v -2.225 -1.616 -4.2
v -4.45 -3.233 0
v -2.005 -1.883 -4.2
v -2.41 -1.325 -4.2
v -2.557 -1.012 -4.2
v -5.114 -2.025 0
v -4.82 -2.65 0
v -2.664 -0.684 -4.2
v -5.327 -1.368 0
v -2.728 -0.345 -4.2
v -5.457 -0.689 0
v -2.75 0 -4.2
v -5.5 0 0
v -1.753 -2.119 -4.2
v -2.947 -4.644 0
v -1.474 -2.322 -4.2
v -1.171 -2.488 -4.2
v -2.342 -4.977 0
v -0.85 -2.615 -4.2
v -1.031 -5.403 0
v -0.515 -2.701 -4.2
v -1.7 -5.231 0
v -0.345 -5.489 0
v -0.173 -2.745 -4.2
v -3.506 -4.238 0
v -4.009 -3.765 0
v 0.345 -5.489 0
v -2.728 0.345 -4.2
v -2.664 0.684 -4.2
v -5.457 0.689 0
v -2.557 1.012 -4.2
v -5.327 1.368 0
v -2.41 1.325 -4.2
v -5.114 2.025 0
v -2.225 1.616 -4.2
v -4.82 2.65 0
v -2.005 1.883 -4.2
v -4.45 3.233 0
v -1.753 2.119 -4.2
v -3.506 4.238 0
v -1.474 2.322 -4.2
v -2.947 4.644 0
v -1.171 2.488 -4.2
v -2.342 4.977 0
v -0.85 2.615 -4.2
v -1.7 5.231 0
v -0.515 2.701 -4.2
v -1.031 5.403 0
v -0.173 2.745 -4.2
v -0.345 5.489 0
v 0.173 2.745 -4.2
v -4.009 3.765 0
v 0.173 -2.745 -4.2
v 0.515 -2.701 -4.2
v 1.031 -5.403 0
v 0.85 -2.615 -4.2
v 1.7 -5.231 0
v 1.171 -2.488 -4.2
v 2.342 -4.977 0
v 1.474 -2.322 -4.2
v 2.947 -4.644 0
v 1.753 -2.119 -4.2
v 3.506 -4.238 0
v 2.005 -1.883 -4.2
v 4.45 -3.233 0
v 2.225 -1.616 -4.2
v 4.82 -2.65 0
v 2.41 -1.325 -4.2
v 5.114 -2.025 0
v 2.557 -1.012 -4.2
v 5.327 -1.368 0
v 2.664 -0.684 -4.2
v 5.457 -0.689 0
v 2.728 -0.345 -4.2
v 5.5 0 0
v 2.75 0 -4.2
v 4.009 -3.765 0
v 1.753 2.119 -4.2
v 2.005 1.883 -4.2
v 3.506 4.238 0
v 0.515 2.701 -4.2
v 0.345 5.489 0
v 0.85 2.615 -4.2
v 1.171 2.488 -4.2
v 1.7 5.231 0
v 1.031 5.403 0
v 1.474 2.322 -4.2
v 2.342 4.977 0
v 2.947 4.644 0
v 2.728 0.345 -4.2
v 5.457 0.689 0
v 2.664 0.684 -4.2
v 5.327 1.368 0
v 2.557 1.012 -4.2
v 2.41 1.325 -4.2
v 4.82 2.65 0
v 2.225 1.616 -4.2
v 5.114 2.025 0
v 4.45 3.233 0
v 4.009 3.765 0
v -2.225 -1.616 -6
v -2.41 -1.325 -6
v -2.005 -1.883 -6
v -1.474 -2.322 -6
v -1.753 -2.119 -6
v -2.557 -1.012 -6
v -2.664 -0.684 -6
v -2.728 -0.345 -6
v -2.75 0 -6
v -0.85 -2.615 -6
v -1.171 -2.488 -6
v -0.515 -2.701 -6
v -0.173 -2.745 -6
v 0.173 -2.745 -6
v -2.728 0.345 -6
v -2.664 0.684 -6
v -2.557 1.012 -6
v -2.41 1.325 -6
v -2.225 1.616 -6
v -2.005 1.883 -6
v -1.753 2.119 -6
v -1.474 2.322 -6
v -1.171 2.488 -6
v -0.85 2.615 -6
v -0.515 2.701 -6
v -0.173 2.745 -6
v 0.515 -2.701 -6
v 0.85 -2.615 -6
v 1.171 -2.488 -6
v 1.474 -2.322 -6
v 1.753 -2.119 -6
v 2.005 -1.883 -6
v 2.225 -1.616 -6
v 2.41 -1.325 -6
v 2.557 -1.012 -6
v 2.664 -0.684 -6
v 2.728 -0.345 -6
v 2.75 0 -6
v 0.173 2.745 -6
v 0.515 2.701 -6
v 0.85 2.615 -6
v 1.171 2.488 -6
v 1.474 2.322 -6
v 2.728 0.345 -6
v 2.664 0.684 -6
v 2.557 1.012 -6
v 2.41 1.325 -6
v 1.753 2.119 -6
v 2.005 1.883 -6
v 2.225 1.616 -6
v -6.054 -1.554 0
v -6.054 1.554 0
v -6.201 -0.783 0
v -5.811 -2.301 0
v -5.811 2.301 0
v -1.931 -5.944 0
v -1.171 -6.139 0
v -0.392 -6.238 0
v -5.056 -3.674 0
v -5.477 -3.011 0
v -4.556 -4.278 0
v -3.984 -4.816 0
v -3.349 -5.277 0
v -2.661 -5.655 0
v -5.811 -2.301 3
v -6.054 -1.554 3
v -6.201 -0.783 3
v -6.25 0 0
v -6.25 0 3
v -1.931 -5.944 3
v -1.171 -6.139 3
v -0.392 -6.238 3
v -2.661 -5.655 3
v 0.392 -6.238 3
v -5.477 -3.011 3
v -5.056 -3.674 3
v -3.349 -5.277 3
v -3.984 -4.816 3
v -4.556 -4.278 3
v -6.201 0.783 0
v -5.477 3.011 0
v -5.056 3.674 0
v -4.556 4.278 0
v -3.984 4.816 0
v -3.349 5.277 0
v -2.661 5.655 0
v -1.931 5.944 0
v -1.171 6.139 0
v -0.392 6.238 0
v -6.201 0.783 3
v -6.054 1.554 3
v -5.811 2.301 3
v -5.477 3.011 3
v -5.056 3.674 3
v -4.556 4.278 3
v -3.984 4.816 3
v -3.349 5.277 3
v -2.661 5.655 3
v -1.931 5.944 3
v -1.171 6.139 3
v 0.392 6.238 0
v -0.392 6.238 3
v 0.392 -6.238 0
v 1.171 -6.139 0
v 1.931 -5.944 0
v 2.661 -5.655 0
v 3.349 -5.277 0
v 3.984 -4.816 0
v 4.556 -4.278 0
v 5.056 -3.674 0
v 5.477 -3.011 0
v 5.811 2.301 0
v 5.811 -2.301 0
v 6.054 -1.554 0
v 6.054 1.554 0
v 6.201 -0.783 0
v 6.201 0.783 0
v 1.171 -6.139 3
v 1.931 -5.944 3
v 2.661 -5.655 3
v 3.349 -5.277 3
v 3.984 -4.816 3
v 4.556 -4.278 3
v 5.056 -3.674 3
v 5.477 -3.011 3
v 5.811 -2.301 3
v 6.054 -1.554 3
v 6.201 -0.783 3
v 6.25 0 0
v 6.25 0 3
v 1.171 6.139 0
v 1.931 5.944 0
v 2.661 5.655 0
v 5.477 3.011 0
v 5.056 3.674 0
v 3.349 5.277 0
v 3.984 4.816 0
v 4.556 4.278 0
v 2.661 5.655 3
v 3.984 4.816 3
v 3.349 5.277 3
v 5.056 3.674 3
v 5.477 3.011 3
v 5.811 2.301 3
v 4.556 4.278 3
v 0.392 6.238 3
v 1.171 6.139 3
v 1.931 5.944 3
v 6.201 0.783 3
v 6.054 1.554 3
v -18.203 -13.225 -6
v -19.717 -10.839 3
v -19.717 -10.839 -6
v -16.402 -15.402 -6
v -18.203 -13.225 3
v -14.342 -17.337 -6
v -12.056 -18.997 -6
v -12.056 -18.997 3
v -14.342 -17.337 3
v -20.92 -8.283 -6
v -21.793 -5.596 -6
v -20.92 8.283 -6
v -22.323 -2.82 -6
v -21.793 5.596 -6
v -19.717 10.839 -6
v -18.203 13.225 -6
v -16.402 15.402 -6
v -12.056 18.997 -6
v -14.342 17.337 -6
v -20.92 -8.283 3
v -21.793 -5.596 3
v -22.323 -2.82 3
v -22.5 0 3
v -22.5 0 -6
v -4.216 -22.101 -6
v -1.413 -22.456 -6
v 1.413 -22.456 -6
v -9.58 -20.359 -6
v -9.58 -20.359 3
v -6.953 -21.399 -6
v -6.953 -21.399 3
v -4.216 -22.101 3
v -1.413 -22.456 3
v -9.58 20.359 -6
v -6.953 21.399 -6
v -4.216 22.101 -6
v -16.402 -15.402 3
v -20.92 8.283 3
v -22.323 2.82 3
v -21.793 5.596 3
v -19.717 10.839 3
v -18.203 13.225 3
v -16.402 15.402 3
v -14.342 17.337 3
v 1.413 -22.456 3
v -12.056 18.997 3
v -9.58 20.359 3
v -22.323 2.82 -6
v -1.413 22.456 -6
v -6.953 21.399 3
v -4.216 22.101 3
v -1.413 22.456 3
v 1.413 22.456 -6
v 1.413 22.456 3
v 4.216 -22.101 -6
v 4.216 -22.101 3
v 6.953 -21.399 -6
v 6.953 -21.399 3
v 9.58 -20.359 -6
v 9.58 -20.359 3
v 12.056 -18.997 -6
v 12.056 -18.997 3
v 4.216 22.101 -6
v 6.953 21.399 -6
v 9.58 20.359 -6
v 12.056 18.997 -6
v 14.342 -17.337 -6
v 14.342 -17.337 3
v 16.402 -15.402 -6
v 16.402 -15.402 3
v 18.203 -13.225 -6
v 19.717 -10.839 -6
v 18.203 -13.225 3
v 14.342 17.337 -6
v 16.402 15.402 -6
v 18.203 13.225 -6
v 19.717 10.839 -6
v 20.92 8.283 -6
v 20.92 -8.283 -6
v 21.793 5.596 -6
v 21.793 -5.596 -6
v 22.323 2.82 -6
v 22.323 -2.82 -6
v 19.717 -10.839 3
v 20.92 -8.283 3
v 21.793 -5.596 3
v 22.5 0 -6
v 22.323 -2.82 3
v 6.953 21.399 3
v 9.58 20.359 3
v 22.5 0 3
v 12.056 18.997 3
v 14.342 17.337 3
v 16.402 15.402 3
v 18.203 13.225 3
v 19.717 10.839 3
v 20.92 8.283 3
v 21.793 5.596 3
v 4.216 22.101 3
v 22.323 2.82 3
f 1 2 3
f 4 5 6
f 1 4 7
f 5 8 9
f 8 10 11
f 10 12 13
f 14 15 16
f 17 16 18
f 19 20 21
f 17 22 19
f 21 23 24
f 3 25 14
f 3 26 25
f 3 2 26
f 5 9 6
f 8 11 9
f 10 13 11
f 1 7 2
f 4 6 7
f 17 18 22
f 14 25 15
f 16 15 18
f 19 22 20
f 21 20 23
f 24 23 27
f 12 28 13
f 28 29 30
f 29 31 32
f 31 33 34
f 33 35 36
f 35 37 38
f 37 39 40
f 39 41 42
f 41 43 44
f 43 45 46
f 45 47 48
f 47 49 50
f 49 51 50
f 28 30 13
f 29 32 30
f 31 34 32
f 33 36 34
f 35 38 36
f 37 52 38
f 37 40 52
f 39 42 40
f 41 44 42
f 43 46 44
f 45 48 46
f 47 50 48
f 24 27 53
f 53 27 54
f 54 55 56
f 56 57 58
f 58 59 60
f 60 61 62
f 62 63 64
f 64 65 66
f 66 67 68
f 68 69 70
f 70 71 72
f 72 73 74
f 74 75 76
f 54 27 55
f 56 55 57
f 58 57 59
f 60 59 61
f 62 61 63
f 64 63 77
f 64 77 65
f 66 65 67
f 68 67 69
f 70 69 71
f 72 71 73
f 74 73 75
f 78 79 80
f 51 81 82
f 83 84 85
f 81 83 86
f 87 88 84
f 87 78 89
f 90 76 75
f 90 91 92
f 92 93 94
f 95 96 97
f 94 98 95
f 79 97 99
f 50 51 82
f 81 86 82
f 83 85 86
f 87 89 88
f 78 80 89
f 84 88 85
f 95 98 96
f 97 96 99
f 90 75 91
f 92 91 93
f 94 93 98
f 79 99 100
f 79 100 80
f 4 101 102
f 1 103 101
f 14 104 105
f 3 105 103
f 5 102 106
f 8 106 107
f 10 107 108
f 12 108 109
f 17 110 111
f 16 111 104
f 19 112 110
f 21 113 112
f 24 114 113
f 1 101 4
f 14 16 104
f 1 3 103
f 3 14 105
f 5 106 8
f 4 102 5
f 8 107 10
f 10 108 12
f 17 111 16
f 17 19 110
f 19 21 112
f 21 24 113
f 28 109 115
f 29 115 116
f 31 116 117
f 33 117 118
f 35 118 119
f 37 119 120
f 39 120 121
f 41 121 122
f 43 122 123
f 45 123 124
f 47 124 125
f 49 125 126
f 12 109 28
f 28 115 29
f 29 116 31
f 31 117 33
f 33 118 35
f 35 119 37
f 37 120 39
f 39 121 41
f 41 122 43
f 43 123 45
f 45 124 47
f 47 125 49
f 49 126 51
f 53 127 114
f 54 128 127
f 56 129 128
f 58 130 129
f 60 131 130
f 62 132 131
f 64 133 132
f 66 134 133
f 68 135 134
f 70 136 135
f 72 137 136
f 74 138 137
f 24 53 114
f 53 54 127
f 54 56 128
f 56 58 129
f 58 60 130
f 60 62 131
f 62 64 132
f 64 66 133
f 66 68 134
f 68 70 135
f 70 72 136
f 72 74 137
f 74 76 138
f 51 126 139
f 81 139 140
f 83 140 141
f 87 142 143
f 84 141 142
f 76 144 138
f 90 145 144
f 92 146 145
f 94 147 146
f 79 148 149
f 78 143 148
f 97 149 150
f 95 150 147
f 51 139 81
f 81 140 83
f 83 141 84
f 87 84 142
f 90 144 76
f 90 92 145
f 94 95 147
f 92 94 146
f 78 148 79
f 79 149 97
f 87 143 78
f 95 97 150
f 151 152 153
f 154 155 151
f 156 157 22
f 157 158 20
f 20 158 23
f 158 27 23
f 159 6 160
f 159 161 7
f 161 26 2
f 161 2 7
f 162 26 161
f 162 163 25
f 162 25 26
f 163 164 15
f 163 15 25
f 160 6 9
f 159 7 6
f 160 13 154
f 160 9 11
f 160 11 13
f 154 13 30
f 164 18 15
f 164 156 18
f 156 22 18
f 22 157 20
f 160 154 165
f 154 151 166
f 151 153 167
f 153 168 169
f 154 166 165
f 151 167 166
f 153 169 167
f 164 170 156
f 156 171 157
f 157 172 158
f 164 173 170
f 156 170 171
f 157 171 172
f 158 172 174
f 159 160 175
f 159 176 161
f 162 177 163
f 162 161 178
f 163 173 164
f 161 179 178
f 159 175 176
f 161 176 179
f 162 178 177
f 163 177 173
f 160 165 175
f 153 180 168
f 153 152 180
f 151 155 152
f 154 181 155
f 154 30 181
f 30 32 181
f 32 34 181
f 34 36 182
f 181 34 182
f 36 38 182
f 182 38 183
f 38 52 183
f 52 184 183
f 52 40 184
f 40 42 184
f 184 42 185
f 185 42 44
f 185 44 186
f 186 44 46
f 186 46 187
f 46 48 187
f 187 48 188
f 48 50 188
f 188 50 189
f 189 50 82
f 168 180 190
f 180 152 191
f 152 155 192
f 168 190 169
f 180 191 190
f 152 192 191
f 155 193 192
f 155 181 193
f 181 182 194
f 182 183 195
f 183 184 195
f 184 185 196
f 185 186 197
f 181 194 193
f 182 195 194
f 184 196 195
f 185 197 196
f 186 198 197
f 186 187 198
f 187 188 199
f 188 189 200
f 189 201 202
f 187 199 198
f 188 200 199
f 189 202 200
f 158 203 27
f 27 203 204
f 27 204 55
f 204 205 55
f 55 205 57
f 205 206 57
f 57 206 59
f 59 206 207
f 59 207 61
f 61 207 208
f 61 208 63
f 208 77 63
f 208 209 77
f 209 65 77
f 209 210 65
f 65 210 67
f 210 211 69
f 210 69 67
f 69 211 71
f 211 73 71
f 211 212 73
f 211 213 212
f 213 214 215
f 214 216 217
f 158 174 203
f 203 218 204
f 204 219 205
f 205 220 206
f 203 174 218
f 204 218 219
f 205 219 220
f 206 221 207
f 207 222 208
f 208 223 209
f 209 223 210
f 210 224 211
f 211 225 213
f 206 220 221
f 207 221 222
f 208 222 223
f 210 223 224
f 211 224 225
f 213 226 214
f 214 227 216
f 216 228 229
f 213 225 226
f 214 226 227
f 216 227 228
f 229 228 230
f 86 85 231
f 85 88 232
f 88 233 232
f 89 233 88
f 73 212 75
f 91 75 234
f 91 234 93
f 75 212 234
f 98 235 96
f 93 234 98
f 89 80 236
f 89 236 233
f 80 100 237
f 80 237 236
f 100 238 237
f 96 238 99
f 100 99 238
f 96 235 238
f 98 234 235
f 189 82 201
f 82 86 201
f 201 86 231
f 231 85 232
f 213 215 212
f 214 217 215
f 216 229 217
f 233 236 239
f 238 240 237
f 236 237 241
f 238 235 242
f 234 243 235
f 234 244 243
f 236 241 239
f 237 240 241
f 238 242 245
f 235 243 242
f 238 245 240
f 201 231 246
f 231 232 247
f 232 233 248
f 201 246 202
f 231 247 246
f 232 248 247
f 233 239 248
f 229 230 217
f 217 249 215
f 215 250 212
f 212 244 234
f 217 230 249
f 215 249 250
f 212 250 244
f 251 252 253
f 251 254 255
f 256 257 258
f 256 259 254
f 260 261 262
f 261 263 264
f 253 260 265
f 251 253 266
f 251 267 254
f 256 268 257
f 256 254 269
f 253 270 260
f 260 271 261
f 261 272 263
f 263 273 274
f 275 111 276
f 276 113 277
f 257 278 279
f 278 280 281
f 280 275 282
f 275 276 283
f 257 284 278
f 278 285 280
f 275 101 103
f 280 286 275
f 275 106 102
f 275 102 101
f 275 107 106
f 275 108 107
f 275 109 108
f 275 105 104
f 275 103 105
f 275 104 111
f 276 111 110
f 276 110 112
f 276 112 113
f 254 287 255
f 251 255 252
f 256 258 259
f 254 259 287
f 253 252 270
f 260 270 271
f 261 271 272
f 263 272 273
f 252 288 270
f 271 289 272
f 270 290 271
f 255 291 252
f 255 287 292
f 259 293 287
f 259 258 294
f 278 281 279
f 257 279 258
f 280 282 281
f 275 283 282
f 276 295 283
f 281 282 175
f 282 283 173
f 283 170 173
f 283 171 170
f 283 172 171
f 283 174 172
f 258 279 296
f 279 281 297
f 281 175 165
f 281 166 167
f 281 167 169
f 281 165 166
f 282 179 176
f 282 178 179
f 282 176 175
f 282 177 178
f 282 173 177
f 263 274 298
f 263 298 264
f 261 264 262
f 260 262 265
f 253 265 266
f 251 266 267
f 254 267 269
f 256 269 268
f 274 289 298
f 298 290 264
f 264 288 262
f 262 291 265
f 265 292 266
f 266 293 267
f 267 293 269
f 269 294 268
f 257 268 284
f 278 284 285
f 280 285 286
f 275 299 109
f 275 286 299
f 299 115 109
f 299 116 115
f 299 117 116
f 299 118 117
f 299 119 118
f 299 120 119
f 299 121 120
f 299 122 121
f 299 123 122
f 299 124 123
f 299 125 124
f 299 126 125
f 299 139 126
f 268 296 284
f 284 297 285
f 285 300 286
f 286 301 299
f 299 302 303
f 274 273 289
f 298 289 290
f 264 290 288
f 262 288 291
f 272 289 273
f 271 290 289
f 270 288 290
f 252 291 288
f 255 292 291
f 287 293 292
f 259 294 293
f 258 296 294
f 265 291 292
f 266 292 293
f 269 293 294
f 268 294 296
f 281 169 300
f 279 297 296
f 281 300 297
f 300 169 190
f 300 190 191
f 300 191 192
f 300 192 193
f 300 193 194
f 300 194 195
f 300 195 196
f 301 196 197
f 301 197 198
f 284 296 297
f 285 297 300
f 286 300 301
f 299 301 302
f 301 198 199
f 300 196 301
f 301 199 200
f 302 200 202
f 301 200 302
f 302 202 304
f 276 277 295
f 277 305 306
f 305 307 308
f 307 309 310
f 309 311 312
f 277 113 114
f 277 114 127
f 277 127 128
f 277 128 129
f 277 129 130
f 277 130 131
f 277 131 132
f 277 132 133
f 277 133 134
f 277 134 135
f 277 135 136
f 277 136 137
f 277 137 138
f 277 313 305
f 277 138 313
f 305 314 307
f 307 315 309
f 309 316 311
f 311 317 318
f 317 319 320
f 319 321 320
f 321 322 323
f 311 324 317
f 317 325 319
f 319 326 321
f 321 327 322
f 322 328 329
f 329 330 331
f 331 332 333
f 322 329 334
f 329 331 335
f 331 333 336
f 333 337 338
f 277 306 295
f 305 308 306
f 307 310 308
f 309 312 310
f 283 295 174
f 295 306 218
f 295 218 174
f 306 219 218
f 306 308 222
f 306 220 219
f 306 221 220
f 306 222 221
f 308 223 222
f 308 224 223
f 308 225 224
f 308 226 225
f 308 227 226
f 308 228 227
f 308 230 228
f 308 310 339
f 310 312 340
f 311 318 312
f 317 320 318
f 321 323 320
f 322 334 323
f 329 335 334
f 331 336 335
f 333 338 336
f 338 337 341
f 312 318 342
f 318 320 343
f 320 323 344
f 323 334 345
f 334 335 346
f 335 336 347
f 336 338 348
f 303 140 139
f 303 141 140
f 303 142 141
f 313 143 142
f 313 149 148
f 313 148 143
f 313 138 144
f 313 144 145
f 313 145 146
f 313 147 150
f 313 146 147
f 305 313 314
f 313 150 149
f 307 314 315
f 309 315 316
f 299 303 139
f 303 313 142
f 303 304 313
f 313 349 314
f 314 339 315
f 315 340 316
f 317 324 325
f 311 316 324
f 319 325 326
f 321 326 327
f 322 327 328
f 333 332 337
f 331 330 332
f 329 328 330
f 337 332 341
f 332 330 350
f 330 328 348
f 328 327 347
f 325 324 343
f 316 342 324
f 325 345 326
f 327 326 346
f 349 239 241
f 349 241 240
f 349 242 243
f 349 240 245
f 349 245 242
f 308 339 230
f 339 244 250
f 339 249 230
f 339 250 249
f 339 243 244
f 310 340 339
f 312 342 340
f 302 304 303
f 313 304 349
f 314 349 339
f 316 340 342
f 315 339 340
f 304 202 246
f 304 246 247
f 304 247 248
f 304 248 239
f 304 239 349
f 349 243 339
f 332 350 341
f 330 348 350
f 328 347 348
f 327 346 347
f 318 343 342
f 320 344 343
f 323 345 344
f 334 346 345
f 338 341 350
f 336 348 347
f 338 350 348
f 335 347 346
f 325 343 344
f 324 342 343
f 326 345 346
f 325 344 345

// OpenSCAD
$fn = 50;

difference() {
	union() {
		translate(v = [0, 0, -6.0]) {
			cylinder(h = 9, r = 22.5);
		}
	}
	union() {
		translate(v = [0, 0, 0]) {
			rotate(a = [0, 0, 0]) {
				difference() {
					union() {
						translate(v = [0, 0, -9.0]) {
							cylinder(h = 9, r = 2.25);
						}
						translate(v = [0, 0, -4.2]) {
							cylinder(h = 4.2, r1 = 2.75, r2 = 5.5);
						}
						translate(v = [0, 0, -9.0]) {
							cylinder(h = 9, r = 2.75);
						}
						translate(v = [0, 0, -9.0]) {
							cylinder(h = 9, r = 2.25);
						}
					}
					union();
				}
			}
		}
		#cylinder(h = 3, r = 6.25);
	}
}
